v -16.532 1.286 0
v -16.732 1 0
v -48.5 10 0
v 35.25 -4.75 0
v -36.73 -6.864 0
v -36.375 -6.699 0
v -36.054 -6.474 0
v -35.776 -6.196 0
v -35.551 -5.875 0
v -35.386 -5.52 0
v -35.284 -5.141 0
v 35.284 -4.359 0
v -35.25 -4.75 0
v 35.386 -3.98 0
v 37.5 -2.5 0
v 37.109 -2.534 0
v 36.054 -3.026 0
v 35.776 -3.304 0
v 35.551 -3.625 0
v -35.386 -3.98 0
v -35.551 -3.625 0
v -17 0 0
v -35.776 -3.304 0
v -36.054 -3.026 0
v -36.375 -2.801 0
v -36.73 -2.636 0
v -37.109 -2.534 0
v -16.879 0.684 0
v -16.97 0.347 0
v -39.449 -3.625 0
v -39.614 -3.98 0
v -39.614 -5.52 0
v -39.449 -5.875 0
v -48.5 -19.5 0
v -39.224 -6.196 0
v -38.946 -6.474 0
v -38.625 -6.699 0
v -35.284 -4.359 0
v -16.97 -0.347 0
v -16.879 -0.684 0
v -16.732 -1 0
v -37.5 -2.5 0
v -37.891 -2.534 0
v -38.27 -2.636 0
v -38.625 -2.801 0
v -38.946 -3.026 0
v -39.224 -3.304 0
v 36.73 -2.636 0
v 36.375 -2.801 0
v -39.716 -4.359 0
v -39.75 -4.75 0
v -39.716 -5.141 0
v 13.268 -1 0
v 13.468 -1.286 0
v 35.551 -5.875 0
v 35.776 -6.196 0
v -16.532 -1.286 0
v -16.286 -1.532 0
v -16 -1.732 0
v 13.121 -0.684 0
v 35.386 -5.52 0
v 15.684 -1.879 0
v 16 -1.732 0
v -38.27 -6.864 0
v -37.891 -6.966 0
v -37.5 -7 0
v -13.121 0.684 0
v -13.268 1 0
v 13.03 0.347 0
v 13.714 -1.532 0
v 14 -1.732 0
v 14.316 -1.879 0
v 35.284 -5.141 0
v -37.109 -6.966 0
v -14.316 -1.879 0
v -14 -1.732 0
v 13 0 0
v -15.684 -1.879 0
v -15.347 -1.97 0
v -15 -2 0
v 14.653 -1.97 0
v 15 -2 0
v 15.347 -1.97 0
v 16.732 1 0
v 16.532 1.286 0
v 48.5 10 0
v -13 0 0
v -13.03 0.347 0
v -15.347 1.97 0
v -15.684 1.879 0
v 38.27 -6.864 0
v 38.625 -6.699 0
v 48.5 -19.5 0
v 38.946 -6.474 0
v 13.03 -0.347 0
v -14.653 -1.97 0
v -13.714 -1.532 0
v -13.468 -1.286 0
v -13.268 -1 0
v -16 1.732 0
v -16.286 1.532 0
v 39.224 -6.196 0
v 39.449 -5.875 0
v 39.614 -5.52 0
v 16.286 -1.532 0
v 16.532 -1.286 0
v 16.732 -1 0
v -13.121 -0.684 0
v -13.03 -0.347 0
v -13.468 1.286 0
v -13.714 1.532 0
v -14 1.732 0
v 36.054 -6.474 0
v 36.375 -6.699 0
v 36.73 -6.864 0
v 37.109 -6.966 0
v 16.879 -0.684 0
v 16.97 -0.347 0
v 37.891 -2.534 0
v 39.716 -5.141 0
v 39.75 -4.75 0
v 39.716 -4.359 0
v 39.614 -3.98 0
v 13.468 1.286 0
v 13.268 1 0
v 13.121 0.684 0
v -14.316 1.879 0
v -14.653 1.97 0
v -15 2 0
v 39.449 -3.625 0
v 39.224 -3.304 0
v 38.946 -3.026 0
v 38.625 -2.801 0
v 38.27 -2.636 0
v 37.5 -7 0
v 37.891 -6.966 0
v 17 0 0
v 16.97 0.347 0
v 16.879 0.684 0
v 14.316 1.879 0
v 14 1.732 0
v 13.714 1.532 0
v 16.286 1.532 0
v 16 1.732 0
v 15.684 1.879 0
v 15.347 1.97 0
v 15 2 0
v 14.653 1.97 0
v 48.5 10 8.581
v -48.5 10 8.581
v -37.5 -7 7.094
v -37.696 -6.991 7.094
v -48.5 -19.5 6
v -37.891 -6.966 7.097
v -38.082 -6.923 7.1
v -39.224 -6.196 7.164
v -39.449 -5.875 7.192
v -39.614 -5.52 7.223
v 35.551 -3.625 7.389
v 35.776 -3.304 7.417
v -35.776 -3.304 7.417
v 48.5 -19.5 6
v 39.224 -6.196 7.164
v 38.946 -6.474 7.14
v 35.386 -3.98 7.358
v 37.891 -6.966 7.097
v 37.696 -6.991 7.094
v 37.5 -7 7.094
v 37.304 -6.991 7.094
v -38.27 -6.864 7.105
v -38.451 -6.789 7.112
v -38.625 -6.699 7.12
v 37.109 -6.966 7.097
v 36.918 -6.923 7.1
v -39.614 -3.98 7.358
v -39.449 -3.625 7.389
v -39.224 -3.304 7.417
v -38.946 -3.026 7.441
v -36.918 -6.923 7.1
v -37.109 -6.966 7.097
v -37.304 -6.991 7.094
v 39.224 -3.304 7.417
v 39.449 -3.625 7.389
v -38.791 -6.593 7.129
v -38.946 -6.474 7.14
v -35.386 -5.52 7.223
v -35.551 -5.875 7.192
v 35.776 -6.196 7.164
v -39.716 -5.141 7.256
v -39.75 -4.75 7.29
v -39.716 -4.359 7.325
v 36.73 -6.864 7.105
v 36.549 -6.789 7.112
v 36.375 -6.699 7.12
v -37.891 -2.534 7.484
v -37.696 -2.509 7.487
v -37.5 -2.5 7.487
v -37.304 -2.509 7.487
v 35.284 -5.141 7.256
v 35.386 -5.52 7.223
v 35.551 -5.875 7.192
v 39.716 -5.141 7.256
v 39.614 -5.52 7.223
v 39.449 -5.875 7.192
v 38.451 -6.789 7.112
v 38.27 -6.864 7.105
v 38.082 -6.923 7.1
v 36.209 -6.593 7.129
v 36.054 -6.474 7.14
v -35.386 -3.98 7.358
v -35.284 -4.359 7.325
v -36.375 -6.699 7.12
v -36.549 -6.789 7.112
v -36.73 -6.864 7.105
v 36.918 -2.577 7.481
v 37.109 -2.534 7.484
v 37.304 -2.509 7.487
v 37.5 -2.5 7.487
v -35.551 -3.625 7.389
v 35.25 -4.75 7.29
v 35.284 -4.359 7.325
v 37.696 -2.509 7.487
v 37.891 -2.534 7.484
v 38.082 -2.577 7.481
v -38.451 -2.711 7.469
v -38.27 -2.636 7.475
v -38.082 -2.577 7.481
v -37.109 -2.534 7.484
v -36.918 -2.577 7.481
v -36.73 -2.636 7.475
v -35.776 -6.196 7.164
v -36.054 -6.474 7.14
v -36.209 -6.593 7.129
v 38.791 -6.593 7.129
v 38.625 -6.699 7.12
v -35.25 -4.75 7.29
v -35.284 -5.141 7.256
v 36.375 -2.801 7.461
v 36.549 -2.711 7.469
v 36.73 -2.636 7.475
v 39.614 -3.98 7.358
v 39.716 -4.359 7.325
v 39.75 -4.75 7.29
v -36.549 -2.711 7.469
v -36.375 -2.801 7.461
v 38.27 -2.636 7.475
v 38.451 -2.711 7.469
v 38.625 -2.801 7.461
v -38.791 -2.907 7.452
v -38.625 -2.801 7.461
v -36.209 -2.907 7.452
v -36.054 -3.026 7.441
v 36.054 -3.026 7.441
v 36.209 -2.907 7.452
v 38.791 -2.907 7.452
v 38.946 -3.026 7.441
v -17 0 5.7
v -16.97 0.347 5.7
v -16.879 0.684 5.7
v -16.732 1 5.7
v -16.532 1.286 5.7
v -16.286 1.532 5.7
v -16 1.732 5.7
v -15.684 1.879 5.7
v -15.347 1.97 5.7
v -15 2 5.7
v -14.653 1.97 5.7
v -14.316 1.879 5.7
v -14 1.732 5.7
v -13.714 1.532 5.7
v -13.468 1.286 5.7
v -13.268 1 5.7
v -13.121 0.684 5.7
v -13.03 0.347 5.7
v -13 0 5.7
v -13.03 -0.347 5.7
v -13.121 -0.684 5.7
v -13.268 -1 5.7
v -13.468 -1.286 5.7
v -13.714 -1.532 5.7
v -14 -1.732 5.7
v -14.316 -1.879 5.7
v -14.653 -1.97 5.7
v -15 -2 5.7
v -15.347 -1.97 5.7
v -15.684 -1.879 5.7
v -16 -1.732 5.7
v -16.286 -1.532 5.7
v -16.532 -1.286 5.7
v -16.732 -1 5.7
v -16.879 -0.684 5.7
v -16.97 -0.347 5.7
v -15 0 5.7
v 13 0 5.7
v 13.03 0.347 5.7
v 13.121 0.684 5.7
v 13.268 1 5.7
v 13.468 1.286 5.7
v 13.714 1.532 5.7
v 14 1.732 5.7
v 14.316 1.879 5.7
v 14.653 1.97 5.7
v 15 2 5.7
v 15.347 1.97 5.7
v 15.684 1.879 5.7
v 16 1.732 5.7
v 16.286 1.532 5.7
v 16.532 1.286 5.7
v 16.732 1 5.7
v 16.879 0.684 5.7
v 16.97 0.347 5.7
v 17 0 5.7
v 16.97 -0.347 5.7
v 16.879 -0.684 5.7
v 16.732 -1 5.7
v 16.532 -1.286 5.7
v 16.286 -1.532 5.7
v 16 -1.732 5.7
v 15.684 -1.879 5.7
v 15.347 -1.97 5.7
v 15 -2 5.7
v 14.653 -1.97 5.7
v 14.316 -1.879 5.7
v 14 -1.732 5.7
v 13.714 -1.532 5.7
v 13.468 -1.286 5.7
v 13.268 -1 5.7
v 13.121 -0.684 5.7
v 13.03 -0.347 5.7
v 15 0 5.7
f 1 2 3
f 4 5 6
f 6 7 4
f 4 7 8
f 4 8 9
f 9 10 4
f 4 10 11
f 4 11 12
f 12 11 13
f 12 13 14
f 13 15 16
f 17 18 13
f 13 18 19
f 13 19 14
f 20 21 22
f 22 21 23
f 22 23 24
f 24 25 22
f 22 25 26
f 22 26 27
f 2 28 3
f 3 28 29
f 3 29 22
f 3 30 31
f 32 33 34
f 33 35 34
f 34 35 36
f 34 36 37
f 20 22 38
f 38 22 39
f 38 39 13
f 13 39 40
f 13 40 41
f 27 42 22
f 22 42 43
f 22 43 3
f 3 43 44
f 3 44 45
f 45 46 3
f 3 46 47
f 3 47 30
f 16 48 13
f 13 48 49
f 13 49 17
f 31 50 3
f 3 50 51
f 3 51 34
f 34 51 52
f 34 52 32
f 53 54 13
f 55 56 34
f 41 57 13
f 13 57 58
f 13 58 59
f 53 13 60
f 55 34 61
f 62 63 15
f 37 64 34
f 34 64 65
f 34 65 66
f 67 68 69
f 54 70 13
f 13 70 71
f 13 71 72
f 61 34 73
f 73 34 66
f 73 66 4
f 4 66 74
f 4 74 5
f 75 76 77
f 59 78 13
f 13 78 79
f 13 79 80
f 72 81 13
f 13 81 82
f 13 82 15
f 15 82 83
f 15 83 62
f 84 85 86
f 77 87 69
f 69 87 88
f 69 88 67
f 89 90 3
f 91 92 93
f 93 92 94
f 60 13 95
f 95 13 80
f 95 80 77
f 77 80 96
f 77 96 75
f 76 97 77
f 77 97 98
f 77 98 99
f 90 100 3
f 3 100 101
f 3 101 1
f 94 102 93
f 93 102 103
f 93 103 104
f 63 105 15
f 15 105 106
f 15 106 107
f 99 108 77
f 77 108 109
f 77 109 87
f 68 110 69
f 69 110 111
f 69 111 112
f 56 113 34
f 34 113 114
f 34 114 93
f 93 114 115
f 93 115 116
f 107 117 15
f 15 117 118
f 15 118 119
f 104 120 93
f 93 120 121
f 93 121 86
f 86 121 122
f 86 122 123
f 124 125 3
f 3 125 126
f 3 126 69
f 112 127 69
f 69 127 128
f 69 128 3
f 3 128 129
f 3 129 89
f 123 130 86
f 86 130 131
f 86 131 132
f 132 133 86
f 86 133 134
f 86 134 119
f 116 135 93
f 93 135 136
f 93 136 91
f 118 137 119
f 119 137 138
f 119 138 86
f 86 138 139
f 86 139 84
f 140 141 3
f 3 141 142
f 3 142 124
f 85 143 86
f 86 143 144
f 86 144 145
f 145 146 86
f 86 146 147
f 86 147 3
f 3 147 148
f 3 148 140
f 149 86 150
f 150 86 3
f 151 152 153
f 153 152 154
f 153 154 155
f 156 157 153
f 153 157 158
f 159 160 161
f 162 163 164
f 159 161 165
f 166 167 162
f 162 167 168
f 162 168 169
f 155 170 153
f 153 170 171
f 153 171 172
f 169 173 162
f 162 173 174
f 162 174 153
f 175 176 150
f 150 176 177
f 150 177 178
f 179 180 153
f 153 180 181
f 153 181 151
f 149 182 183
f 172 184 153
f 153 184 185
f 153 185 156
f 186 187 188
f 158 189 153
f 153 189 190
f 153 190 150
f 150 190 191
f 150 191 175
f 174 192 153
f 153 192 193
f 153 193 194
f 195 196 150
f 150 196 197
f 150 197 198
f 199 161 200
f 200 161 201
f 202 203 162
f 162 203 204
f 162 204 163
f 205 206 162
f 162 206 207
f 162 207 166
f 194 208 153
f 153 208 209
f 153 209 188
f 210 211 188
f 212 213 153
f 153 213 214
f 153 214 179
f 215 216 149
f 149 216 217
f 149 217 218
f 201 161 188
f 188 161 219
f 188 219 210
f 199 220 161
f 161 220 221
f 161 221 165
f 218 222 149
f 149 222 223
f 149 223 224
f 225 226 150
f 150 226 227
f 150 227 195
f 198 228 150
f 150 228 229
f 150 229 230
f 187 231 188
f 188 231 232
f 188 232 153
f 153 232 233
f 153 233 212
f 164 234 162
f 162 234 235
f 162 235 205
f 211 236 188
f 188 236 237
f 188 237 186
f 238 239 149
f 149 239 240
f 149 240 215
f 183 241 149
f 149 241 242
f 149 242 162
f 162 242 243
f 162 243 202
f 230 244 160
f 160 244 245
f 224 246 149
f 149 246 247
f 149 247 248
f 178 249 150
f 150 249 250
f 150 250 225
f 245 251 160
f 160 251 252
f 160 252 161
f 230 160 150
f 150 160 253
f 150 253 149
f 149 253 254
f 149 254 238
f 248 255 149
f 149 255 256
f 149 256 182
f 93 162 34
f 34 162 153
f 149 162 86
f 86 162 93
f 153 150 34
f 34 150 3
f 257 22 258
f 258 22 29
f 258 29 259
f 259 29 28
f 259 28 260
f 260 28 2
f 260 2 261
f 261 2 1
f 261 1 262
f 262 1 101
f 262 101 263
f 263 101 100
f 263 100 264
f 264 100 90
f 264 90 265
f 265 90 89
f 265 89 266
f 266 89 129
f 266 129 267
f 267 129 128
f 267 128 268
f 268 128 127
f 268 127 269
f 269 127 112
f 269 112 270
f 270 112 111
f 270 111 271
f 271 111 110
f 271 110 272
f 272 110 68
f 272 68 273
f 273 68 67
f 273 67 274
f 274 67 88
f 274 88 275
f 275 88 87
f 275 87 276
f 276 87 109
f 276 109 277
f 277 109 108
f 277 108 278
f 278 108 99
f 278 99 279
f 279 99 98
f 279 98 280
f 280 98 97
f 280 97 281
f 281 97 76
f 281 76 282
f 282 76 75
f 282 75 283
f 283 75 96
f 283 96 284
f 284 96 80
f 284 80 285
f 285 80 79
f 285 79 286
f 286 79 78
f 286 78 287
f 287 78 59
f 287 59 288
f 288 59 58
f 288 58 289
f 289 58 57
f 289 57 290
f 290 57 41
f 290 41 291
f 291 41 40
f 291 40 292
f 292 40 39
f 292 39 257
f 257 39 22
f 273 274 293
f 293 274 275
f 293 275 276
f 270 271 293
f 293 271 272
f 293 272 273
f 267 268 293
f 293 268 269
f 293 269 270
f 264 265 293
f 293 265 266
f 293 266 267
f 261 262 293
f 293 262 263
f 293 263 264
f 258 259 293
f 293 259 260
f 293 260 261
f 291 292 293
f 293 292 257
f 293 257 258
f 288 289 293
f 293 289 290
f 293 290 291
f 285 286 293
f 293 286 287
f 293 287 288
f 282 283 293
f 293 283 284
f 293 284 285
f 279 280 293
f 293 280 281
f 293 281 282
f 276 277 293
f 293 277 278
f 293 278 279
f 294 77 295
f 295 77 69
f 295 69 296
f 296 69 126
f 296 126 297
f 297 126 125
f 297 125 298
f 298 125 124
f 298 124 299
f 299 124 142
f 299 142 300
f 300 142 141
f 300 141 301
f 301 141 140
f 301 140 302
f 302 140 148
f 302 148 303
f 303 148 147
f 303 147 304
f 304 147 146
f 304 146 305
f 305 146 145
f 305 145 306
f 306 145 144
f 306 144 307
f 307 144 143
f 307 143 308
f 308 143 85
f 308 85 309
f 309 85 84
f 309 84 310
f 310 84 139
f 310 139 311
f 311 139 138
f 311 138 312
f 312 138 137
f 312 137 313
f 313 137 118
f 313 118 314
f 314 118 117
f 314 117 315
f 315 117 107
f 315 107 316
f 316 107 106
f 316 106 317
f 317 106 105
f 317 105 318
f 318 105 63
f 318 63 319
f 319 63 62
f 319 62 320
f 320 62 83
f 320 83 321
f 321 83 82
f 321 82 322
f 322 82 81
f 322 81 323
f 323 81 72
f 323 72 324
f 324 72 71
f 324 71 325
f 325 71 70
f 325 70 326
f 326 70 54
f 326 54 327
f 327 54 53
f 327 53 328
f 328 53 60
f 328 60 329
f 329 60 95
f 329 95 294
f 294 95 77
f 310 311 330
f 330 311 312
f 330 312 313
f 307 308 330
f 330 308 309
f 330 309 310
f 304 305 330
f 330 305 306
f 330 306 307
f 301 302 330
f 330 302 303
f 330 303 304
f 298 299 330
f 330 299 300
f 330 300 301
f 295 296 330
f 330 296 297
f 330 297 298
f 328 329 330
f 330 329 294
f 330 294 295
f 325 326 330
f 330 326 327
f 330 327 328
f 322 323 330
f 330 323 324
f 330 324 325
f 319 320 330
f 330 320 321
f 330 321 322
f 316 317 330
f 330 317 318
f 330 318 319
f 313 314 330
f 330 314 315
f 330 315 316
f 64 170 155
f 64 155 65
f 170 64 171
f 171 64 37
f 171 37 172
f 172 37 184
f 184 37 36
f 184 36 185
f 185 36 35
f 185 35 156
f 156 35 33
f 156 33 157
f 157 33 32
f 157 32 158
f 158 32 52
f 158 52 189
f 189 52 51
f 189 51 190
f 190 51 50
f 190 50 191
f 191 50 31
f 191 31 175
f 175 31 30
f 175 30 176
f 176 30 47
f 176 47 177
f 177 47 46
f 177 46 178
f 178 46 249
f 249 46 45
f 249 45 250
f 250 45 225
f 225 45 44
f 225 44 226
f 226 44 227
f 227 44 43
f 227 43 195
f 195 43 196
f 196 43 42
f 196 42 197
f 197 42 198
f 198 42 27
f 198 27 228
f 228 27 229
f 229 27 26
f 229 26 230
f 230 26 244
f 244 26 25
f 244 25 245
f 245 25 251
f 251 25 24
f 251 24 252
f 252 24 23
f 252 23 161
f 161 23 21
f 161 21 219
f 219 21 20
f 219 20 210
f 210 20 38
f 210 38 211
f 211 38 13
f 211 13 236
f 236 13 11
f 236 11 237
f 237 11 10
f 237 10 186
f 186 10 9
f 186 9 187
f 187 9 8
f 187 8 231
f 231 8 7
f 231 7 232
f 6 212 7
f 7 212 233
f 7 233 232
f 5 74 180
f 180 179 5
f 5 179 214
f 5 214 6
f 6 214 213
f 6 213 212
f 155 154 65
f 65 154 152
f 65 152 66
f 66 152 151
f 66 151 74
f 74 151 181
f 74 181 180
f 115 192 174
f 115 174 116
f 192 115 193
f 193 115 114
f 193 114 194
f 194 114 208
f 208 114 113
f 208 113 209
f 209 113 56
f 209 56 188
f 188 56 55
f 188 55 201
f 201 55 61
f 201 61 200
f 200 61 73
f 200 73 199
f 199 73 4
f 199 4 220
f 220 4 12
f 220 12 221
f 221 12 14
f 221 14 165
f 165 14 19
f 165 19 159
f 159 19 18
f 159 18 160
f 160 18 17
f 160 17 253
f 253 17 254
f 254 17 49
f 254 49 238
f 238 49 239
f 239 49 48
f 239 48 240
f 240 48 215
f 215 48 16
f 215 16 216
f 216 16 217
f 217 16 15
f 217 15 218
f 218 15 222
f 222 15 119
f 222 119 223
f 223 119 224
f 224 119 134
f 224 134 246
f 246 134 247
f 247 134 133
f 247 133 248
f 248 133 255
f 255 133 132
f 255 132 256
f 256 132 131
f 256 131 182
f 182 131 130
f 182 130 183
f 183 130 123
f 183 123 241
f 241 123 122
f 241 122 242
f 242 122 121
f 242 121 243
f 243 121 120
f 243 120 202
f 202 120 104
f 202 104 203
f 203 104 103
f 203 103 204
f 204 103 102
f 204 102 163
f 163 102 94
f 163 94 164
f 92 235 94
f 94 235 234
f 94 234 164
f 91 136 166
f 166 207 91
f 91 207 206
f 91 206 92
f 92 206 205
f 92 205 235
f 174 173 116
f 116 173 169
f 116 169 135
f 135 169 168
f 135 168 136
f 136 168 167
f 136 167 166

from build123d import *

# Parameters (mm, degrees)
EX_BODY_DEPTH        = 97
SK_INSERTS_M3_R      = 2
CUT_INSERTS_M3_DEPTH = 5.7
SK_VESA_M4_R         = 2.25
CUT_VESA_M4_DEPTH    = 12


with BuildPart() as part:
    # SK_Body → EX_Body (new body)
    with BuildSketch(Plane(origin=(-48.5, 0, 0), x_dir=(0, 0, -1), z_dir=(1, 0, 0))):
        Polygon((0, -19.5), (-6, -19.5), (-8.580915574, 10), (0, 10), align=None)
    extrude(amount=EX_BODY_DEPTH)

    # SK_Inserts_M3 → CUT_Inserts_M3 (cut)
    with BuildSketch(Plane.XY):
        with Locations((15, 0)):
            Circle(SK_INSERTS_M3_R)
        with Locations((-15, 0)):
            Circle(SK_INSERTS_M3_R)
    extrude(amount=CUT_INSERTS_M3_DEPTH, mode=Mode.SUBTRACT)

    # SK_VESA_M4 → CUT_VESA_M4 (cut)
    with BuildSketch(Plane.XY):
        with Locations((37.5, -4.75)):
            Circle(SK_VESA_M4_R)
        with Locations((-37.5, -4.75)):
            Circle(SK_VESA_M4_R)
    extrude(amount=CUT_VESA_M4_DEPTH, mode=Mode.SUBTRACT)


solid = part.part
